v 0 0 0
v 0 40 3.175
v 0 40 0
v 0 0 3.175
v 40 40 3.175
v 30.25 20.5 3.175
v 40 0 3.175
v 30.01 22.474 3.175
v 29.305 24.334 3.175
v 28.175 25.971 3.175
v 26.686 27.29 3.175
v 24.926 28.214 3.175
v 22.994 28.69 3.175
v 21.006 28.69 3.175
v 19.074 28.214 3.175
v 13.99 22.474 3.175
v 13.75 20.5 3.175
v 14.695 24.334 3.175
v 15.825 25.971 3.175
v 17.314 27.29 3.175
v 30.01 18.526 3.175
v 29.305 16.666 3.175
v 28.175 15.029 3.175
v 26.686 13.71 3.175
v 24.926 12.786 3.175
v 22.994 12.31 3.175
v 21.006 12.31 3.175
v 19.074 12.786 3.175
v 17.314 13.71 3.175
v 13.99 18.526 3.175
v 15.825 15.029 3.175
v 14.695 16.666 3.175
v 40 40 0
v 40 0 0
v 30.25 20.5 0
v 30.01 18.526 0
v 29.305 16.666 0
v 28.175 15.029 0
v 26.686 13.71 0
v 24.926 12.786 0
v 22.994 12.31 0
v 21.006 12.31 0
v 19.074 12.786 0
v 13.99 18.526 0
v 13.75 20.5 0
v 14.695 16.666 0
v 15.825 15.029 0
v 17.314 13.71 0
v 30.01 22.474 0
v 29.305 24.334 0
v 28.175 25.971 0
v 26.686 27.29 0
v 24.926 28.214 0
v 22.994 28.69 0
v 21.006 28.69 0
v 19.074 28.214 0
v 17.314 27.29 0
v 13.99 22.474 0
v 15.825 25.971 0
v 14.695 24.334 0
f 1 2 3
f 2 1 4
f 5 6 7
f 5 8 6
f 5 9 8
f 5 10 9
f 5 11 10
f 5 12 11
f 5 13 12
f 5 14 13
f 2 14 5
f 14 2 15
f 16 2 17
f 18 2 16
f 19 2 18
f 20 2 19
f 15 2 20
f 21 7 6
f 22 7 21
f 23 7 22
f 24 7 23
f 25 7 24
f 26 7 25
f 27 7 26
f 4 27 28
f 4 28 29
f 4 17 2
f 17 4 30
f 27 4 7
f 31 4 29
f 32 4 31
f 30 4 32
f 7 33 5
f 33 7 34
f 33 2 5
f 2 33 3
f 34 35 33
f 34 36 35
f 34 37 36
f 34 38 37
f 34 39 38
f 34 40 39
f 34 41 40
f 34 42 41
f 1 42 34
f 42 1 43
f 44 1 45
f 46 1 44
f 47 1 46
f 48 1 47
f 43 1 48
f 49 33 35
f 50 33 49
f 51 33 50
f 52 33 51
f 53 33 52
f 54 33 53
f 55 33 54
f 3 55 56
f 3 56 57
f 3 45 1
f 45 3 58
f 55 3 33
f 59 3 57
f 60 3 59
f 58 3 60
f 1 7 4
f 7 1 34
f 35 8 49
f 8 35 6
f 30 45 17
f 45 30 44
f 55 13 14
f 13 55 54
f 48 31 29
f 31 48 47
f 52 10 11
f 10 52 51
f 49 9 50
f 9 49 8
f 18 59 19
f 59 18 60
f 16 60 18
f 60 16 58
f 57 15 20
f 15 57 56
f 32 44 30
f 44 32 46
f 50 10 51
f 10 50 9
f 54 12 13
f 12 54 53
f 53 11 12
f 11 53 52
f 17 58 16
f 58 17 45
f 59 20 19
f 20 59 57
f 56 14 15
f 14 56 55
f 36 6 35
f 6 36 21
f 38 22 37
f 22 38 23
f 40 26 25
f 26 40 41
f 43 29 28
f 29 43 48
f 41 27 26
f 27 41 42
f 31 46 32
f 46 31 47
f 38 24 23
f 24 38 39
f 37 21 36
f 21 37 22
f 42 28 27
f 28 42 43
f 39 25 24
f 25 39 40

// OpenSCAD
leftOffset = 10;
bottomOffset = 11.5;
switchWidth = 24;
switchHeight = 18;
switchVgap = 6;
switchHgap = 6;
holeRadius = 16.5/2;

module hole(row, column) {
    /* Rectangular Holes
    xLoc = leftOffset + (row * (switchWidth + switchHgap));
    yLoc = bottomOffset + (column * (switchHeight + switchVgap));
    translate ([xLoc, yLoc, -2]) cube([switchWidth, switchHeight, 6]);
    */
    /* Round Holes */
    xLoc = leftOffset + (row * (switchWidth + switchHgap)) + (switchWidth / 2);
    yLoc = bottomOffset + (column * (switchHeight + switchVgap)) + (switchHeight / 2);
    translate ([xLoc, yLoc, -2]) cylinder(6, holeRadius, holeRadius, false);
    
}

difference() {
    /* cube([482.6, 44.5*2, 3.175]);  /* Full width */
    /* cube([482.6/2, 44.5*2, 3.175]);  /* Half Width */
    cube([40, 40, 3.175]);  /* Test Print */
    hole(0, 0);
    /*
    hole(0, 1);
    hole(0, 2);
    hole(1, 0);
    hole(1, 1);
    hole(1, 2);
    hole(2, 0);
    hole(2, 1);
    hole(2, 2);
    hole(3, 0);
    hole(3, 1);
    hole(3, 2);
    hole(5, 0);
    hole(5, 1);
    hole(5, 2);
    hole(6, 0);
    hole(6, 1);
    hole(6, 2);
    */
}
